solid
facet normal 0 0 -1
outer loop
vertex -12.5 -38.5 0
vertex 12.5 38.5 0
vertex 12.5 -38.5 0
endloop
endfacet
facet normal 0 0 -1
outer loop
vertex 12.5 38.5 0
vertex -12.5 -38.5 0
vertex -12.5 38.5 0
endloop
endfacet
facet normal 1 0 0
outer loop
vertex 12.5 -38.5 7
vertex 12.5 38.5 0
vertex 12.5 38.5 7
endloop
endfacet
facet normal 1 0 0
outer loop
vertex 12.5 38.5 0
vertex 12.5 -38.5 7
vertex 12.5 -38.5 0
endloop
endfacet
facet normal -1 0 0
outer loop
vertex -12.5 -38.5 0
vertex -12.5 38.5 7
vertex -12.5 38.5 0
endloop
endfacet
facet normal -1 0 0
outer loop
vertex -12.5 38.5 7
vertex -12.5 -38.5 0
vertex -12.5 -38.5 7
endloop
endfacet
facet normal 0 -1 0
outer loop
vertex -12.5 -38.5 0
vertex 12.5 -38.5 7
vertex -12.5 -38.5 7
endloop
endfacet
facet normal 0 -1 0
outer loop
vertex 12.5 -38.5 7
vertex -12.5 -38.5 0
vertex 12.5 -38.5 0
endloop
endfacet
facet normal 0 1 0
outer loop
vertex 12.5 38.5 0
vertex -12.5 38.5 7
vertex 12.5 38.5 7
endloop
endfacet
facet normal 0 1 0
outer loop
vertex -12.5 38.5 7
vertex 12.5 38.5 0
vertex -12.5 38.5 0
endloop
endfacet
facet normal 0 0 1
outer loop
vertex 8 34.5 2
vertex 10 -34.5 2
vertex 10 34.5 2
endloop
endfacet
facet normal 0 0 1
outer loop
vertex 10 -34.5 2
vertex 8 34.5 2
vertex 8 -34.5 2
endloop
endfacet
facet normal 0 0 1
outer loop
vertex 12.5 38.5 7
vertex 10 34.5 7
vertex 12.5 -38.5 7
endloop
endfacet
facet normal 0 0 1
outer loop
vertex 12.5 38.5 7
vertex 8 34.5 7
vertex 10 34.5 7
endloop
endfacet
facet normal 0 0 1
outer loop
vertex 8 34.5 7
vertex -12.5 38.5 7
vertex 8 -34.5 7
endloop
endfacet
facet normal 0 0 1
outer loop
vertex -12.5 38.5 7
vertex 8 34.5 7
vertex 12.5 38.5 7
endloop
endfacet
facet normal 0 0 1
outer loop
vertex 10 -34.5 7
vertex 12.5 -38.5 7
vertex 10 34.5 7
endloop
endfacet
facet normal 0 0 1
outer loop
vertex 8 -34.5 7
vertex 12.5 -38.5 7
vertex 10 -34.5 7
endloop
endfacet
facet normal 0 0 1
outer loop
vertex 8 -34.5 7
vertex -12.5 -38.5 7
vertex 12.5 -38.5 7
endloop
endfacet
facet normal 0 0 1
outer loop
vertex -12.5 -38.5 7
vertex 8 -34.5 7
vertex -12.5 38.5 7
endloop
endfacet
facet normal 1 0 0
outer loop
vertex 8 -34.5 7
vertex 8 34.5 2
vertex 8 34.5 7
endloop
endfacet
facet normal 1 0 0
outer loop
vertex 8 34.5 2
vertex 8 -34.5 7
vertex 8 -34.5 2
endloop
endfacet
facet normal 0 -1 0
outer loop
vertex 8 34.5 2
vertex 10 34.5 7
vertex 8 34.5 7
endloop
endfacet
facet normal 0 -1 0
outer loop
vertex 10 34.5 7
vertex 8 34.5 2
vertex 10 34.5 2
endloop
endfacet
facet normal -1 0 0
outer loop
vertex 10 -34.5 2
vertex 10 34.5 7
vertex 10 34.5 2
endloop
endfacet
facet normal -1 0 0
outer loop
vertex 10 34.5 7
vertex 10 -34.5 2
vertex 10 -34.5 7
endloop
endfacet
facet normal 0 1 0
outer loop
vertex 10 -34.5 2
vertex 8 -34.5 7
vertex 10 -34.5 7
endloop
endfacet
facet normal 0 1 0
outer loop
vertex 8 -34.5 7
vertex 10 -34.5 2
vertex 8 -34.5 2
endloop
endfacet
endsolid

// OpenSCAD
slotDepth = 5;

boardLength = 69;
boardWidth = 2;

boardLeftPadding = 3;
boardRightPadding = 20;

baseHeight = 2;
baseLengthPadding = 4;

linear_extrude( baseHeight )
square([ boardLeftPadding + boardRightPadding + boardWidth, boardLength + ( baseLengthPadding * 2 ) ], center = true);

translate([0,0,baseHeight])
linear_extrude( slotDepth )

difference() {
  square([ boardLeftPadding + boardRightPadding + boardWidth, boardLength + ( baseLengthPadding * 2 ) ], center = true);

  translate([ boardRightPadding/2 - boardWidth/2 ,0,0])
  square([ boardWidth, boardLength ], center = true);
}
